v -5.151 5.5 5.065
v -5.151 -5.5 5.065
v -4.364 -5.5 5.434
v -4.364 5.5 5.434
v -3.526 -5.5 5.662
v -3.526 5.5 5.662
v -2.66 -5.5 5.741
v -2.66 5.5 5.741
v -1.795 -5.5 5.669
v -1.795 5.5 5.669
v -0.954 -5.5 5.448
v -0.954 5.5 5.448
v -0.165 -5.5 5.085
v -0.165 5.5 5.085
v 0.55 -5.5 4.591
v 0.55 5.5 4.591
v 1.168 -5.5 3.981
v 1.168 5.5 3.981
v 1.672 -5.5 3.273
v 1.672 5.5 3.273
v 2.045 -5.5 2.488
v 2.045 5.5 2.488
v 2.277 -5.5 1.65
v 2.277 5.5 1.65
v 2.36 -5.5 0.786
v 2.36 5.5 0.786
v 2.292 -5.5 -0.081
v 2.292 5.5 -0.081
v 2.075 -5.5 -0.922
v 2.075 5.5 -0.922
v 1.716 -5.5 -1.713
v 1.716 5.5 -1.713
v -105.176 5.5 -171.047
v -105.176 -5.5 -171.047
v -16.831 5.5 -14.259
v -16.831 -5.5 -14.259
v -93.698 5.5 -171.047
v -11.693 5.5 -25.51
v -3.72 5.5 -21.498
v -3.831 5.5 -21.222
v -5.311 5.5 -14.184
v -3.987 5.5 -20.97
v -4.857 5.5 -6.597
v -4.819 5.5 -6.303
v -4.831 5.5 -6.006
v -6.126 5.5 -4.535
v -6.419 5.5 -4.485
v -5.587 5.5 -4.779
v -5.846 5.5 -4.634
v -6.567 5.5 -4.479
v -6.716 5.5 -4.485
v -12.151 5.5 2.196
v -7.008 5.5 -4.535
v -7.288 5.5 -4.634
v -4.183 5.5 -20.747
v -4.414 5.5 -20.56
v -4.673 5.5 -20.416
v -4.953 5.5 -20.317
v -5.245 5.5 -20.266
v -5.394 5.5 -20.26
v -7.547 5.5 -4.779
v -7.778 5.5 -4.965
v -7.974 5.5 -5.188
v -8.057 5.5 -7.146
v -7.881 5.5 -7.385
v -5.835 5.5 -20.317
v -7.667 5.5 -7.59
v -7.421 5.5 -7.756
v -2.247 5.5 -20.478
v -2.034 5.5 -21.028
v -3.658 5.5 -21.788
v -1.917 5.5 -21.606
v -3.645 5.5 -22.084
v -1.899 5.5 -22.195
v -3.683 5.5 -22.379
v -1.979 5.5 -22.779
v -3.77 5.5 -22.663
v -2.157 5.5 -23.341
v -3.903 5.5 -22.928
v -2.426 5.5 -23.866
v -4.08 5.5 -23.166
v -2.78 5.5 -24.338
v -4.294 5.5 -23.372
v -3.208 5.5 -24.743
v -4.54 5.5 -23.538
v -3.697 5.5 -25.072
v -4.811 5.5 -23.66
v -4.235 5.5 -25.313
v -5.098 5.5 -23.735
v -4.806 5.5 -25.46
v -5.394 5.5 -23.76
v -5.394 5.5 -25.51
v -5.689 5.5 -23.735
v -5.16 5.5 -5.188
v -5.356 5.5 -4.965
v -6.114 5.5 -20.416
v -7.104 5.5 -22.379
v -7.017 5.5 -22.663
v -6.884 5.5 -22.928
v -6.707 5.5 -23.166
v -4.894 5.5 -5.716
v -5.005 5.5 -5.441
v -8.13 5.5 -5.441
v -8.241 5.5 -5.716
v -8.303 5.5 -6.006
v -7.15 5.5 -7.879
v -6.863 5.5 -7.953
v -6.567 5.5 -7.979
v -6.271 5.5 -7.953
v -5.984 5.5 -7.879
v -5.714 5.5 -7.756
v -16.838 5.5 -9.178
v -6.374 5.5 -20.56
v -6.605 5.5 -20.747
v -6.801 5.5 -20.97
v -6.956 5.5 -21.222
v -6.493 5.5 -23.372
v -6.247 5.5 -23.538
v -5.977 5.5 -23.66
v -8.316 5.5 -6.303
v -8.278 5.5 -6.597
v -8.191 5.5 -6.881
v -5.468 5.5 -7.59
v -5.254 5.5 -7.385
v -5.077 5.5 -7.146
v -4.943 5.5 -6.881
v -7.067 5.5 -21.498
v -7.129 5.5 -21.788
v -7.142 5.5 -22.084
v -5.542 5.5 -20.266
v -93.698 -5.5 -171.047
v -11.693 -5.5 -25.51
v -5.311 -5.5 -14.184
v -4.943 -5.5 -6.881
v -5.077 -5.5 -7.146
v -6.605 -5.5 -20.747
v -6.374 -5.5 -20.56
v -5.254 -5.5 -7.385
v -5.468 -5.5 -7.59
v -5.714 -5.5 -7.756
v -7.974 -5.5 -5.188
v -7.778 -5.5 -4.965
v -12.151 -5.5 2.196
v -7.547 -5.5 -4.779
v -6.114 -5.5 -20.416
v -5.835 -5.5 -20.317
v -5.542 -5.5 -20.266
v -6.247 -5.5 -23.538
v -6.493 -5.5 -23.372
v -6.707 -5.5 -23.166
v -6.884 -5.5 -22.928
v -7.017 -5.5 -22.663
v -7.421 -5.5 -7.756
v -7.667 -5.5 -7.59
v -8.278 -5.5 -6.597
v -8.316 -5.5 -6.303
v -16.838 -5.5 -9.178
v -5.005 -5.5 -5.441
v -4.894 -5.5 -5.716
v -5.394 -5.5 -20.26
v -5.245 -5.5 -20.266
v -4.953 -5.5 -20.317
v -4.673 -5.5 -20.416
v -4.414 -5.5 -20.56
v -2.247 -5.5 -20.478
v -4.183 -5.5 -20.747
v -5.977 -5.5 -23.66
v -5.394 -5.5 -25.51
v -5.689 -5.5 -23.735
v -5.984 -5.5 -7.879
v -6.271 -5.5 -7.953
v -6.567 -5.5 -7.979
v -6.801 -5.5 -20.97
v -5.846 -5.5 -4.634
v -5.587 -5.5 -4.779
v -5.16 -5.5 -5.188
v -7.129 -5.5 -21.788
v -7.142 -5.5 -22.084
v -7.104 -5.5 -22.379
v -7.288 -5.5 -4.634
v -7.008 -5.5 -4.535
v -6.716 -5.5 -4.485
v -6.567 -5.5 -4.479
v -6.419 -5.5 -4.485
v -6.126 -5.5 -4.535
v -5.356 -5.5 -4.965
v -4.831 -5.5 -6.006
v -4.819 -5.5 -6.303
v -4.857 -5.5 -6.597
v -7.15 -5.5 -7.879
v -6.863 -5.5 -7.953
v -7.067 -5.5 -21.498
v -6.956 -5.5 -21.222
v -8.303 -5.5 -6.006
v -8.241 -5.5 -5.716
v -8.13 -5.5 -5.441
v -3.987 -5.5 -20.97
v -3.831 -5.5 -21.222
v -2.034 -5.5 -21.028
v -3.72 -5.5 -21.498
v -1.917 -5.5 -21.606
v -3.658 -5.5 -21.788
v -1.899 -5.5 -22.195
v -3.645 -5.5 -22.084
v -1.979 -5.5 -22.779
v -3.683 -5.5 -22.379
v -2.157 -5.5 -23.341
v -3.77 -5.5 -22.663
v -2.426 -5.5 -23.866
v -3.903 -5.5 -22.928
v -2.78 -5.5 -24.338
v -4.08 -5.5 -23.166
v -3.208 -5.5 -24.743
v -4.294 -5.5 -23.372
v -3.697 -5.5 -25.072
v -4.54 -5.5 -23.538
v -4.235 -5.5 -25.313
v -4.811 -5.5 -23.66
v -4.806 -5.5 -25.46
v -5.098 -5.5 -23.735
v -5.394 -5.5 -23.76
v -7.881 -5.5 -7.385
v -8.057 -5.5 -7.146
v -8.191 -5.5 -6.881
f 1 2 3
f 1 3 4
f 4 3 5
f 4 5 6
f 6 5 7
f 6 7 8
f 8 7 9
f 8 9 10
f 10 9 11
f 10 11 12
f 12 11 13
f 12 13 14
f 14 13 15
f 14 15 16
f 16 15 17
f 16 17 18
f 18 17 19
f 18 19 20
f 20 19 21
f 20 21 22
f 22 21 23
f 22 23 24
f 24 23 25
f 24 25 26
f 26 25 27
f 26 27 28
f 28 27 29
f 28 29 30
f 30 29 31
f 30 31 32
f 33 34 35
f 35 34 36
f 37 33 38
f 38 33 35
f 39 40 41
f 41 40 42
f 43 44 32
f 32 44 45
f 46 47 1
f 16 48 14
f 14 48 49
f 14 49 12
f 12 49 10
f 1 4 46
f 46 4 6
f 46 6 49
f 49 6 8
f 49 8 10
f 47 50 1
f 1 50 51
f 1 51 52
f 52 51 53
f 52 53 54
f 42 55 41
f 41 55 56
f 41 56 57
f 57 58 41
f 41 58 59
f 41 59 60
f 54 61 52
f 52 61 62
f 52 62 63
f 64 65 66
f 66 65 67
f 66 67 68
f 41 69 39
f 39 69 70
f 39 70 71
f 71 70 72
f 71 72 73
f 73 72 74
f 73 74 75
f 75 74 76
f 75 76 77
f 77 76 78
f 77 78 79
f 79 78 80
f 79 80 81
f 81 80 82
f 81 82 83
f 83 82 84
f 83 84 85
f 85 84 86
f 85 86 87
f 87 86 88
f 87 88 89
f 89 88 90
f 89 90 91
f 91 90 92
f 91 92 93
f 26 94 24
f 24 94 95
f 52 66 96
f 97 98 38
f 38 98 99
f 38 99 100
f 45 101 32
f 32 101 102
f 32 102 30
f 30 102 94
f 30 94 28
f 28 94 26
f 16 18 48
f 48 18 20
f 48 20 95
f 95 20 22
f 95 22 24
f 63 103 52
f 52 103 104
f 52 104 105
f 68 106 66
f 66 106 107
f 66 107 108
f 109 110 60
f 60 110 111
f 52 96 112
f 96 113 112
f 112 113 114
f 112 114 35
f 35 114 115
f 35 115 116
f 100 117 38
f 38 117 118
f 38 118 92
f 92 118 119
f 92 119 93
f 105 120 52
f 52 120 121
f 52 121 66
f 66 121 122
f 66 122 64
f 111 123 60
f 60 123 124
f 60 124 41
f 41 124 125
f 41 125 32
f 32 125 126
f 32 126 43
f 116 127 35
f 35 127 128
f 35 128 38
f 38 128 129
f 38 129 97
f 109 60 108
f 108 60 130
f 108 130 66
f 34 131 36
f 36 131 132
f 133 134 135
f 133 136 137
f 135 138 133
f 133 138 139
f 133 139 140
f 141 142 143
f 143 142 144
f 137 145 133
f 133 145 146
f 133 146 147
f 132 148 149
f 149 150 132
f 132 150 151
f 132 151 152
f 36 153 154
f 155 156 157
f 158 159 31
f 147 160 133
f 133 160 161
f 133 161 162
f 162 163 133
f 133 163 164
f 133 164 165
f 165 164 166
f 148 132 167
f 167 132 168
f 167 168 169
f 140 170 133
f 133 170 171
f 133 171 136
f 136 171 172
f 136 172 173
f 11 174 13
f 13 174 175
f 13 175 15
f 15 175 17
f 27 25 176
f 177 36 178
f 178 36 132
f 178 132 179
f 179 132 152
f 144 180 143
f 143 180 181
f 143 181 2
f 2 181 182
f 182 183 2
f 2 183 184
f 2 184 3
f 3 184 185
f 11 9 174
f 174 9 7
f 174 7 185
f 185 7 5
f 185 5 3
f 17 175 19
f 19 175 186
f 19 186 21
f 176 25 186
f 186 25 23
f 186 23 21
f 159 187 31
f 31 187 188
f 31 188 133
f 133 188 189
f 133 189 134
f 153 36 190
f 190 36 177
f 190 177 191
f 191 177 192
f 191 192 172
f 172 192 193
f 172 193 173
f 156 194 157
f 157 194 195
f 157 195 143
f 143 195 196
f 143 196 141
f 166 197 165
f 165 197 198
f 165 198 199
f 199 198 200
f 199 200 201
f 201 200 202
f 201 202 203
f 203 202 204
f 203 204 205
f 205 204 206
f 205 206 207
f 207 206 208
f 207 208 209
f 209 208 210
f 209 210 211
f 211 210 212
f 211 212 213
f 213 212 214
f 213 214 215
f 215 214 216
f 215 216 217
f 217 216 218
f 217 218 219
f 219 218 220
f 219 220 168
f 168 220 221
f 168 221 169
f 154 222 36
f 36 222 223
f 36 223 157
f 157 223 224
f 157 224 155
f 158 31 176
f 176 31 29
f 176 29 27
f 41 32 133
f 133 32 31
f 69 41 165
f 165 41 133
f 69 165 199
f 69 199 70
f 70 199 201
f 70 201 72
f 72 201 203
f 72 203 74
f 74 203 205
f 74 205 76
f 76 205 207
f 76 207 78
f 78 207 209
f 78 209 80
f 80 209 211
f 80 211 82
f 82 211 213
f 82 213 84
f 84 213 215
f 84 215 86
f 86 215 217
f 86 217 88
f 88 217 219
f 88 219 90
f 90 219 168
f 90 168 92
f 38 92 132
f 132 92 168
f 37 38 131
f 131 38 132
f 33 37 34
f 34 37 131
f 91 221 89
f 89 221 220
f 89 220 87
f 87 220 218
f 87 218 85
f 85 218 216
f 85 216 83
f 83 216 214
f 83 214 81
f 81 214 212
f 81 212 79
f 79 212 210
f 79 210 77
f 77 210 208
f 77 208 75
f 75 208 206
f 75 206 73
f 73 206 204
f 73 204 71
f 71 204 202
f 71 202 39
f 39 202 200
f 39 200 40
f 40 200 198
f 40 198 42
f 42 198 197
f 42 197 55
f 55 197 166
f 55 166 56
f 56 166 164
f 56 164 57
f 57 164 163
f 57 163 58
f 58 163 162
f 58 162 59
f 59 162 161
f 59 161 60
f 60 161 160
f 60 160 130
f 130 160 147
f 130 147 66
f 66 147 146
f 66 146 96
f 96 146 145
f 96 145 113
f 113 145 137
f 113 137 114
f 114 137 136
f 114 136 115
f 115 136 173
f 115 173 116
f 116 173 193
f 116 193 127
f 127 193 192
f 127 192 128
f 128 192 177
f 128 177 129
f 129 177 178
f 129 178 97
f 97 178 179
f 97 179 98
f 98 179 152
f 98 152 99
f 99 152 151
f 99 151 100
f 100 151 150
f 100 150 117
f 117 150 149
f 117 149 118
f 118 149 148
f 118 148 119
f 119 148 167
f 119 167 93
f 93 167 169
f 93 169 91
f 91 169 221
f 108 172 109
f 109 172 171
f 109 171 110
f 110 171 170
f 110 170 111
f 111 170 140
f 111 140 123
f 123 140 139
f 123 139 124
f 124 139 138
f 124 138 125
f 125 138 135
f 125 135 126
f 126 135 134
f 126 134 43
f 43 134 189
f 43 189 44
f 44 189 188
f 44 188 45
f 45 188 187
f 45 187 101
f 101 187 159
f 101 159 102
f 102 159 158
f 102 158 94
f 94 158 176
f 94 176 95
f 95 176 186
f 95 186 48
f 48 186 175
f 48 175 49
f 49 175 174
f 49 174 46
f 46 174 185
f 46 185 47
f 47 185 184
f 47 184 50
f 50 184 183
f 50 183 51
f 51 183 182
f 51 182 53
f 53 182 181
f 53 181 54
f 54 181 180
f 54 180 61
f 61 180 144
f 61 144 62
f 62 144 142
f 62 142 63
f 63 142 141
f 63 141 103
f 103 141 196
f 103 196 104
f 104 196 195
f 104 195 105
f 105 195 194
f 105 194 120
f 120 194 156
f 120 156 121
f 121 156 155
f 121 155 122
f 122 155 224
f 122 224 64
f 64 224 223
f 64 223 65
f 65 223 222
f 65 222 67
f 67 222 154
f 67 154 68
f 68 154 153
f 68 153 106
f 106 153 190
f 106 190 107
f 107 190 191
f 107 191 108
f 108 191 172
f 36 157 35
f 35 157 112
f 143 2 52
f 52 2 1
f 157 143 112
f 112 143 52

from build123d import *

# Parameters (mm, degrees)
CROQUIS1_R              = 1.75
SALIENTE_EXTRUIR1_DEPTH = 5.5
SALIENTE_EXTRUIR2_DEPTH = 11


with BuildPart() as part:
    # Croquis1 → Saliente-Extruir1 (new, symmetric)
    with BuildSketch(Plane(origin=(0, 0, 0), x_dir=(1, 0, 0), z_dir=(0, 1, 0))):
        with BuildLine():
            Line((-6.9961079, -3.195655599), (-105.176277572, 171.04743403))
            Line((-105.176277572, 171.04743403), (-93.698060534, 171.04743403))
            Line((-93.698060534, 171.04743403), (-11.69265741, 25.510154411))
            Line((-11.69265741, 25.510154411), (-5.393659345, 25.510154411))
            ThreePointArc((-5.393659345, 25.510154411), (-2.426146714, 23.865920772), (-2.246796422, 20.478079431))
            Line((-2.246796422, 20.478079431), (-5.310946382, 14.184353585))
            Line((-5.310946382, 14.184353585), (1.716046582, 1.713352885))
            ThreePointArc((1.716046582, 1.713352885), (-0.185526417, -5.097228597), (-6.9961079, -3.195655599))
        make_face()
        with Locations(Location((-5.393659345, 22.010154411, 0), (0, 0, 270))):
            Circle(CROQUIS1_R, mode=Mode.SUBTRACT)
        with Locations(Location((-6.567237446, 6.228572228, 0), (0, 0, 270))):
            Circle(CROQUIS1_R, mode=Mode.SUBTRACT)
    extrude(amount=SALIENTE_EXTRUIR1_DEPTH, both=True)

    # Croquis3 → Saliente-Extruir2 (add)
    with BuildSketch(Plane(origin=(0, 5.5, 0), x_dir=(1, 0, 0), z_dir=(0, 1, 0))):
        with BuildLine():
            Line((-12.150815645, -2.195736734), (-5.150815645, -5.065033727))
            ThreePointArc((-5.150815645, -5.065033727), (-6.19841412, -4.253687071), (-6.9961079, -3.195655599))
            Line((-6.9961079, -3.195655599), (-16.8311389, 14.258848643))
            Line((-16.8311389, 14.258848643), (-16.837857523, 9.178094271))
            Line((-16.837857523, 9.178094271), (-12.150815645, -2.195736734))
        make_face()
    extrude(amount=-SALIENTE_EXTRUIR2_DEPTH)


solid = part.part
